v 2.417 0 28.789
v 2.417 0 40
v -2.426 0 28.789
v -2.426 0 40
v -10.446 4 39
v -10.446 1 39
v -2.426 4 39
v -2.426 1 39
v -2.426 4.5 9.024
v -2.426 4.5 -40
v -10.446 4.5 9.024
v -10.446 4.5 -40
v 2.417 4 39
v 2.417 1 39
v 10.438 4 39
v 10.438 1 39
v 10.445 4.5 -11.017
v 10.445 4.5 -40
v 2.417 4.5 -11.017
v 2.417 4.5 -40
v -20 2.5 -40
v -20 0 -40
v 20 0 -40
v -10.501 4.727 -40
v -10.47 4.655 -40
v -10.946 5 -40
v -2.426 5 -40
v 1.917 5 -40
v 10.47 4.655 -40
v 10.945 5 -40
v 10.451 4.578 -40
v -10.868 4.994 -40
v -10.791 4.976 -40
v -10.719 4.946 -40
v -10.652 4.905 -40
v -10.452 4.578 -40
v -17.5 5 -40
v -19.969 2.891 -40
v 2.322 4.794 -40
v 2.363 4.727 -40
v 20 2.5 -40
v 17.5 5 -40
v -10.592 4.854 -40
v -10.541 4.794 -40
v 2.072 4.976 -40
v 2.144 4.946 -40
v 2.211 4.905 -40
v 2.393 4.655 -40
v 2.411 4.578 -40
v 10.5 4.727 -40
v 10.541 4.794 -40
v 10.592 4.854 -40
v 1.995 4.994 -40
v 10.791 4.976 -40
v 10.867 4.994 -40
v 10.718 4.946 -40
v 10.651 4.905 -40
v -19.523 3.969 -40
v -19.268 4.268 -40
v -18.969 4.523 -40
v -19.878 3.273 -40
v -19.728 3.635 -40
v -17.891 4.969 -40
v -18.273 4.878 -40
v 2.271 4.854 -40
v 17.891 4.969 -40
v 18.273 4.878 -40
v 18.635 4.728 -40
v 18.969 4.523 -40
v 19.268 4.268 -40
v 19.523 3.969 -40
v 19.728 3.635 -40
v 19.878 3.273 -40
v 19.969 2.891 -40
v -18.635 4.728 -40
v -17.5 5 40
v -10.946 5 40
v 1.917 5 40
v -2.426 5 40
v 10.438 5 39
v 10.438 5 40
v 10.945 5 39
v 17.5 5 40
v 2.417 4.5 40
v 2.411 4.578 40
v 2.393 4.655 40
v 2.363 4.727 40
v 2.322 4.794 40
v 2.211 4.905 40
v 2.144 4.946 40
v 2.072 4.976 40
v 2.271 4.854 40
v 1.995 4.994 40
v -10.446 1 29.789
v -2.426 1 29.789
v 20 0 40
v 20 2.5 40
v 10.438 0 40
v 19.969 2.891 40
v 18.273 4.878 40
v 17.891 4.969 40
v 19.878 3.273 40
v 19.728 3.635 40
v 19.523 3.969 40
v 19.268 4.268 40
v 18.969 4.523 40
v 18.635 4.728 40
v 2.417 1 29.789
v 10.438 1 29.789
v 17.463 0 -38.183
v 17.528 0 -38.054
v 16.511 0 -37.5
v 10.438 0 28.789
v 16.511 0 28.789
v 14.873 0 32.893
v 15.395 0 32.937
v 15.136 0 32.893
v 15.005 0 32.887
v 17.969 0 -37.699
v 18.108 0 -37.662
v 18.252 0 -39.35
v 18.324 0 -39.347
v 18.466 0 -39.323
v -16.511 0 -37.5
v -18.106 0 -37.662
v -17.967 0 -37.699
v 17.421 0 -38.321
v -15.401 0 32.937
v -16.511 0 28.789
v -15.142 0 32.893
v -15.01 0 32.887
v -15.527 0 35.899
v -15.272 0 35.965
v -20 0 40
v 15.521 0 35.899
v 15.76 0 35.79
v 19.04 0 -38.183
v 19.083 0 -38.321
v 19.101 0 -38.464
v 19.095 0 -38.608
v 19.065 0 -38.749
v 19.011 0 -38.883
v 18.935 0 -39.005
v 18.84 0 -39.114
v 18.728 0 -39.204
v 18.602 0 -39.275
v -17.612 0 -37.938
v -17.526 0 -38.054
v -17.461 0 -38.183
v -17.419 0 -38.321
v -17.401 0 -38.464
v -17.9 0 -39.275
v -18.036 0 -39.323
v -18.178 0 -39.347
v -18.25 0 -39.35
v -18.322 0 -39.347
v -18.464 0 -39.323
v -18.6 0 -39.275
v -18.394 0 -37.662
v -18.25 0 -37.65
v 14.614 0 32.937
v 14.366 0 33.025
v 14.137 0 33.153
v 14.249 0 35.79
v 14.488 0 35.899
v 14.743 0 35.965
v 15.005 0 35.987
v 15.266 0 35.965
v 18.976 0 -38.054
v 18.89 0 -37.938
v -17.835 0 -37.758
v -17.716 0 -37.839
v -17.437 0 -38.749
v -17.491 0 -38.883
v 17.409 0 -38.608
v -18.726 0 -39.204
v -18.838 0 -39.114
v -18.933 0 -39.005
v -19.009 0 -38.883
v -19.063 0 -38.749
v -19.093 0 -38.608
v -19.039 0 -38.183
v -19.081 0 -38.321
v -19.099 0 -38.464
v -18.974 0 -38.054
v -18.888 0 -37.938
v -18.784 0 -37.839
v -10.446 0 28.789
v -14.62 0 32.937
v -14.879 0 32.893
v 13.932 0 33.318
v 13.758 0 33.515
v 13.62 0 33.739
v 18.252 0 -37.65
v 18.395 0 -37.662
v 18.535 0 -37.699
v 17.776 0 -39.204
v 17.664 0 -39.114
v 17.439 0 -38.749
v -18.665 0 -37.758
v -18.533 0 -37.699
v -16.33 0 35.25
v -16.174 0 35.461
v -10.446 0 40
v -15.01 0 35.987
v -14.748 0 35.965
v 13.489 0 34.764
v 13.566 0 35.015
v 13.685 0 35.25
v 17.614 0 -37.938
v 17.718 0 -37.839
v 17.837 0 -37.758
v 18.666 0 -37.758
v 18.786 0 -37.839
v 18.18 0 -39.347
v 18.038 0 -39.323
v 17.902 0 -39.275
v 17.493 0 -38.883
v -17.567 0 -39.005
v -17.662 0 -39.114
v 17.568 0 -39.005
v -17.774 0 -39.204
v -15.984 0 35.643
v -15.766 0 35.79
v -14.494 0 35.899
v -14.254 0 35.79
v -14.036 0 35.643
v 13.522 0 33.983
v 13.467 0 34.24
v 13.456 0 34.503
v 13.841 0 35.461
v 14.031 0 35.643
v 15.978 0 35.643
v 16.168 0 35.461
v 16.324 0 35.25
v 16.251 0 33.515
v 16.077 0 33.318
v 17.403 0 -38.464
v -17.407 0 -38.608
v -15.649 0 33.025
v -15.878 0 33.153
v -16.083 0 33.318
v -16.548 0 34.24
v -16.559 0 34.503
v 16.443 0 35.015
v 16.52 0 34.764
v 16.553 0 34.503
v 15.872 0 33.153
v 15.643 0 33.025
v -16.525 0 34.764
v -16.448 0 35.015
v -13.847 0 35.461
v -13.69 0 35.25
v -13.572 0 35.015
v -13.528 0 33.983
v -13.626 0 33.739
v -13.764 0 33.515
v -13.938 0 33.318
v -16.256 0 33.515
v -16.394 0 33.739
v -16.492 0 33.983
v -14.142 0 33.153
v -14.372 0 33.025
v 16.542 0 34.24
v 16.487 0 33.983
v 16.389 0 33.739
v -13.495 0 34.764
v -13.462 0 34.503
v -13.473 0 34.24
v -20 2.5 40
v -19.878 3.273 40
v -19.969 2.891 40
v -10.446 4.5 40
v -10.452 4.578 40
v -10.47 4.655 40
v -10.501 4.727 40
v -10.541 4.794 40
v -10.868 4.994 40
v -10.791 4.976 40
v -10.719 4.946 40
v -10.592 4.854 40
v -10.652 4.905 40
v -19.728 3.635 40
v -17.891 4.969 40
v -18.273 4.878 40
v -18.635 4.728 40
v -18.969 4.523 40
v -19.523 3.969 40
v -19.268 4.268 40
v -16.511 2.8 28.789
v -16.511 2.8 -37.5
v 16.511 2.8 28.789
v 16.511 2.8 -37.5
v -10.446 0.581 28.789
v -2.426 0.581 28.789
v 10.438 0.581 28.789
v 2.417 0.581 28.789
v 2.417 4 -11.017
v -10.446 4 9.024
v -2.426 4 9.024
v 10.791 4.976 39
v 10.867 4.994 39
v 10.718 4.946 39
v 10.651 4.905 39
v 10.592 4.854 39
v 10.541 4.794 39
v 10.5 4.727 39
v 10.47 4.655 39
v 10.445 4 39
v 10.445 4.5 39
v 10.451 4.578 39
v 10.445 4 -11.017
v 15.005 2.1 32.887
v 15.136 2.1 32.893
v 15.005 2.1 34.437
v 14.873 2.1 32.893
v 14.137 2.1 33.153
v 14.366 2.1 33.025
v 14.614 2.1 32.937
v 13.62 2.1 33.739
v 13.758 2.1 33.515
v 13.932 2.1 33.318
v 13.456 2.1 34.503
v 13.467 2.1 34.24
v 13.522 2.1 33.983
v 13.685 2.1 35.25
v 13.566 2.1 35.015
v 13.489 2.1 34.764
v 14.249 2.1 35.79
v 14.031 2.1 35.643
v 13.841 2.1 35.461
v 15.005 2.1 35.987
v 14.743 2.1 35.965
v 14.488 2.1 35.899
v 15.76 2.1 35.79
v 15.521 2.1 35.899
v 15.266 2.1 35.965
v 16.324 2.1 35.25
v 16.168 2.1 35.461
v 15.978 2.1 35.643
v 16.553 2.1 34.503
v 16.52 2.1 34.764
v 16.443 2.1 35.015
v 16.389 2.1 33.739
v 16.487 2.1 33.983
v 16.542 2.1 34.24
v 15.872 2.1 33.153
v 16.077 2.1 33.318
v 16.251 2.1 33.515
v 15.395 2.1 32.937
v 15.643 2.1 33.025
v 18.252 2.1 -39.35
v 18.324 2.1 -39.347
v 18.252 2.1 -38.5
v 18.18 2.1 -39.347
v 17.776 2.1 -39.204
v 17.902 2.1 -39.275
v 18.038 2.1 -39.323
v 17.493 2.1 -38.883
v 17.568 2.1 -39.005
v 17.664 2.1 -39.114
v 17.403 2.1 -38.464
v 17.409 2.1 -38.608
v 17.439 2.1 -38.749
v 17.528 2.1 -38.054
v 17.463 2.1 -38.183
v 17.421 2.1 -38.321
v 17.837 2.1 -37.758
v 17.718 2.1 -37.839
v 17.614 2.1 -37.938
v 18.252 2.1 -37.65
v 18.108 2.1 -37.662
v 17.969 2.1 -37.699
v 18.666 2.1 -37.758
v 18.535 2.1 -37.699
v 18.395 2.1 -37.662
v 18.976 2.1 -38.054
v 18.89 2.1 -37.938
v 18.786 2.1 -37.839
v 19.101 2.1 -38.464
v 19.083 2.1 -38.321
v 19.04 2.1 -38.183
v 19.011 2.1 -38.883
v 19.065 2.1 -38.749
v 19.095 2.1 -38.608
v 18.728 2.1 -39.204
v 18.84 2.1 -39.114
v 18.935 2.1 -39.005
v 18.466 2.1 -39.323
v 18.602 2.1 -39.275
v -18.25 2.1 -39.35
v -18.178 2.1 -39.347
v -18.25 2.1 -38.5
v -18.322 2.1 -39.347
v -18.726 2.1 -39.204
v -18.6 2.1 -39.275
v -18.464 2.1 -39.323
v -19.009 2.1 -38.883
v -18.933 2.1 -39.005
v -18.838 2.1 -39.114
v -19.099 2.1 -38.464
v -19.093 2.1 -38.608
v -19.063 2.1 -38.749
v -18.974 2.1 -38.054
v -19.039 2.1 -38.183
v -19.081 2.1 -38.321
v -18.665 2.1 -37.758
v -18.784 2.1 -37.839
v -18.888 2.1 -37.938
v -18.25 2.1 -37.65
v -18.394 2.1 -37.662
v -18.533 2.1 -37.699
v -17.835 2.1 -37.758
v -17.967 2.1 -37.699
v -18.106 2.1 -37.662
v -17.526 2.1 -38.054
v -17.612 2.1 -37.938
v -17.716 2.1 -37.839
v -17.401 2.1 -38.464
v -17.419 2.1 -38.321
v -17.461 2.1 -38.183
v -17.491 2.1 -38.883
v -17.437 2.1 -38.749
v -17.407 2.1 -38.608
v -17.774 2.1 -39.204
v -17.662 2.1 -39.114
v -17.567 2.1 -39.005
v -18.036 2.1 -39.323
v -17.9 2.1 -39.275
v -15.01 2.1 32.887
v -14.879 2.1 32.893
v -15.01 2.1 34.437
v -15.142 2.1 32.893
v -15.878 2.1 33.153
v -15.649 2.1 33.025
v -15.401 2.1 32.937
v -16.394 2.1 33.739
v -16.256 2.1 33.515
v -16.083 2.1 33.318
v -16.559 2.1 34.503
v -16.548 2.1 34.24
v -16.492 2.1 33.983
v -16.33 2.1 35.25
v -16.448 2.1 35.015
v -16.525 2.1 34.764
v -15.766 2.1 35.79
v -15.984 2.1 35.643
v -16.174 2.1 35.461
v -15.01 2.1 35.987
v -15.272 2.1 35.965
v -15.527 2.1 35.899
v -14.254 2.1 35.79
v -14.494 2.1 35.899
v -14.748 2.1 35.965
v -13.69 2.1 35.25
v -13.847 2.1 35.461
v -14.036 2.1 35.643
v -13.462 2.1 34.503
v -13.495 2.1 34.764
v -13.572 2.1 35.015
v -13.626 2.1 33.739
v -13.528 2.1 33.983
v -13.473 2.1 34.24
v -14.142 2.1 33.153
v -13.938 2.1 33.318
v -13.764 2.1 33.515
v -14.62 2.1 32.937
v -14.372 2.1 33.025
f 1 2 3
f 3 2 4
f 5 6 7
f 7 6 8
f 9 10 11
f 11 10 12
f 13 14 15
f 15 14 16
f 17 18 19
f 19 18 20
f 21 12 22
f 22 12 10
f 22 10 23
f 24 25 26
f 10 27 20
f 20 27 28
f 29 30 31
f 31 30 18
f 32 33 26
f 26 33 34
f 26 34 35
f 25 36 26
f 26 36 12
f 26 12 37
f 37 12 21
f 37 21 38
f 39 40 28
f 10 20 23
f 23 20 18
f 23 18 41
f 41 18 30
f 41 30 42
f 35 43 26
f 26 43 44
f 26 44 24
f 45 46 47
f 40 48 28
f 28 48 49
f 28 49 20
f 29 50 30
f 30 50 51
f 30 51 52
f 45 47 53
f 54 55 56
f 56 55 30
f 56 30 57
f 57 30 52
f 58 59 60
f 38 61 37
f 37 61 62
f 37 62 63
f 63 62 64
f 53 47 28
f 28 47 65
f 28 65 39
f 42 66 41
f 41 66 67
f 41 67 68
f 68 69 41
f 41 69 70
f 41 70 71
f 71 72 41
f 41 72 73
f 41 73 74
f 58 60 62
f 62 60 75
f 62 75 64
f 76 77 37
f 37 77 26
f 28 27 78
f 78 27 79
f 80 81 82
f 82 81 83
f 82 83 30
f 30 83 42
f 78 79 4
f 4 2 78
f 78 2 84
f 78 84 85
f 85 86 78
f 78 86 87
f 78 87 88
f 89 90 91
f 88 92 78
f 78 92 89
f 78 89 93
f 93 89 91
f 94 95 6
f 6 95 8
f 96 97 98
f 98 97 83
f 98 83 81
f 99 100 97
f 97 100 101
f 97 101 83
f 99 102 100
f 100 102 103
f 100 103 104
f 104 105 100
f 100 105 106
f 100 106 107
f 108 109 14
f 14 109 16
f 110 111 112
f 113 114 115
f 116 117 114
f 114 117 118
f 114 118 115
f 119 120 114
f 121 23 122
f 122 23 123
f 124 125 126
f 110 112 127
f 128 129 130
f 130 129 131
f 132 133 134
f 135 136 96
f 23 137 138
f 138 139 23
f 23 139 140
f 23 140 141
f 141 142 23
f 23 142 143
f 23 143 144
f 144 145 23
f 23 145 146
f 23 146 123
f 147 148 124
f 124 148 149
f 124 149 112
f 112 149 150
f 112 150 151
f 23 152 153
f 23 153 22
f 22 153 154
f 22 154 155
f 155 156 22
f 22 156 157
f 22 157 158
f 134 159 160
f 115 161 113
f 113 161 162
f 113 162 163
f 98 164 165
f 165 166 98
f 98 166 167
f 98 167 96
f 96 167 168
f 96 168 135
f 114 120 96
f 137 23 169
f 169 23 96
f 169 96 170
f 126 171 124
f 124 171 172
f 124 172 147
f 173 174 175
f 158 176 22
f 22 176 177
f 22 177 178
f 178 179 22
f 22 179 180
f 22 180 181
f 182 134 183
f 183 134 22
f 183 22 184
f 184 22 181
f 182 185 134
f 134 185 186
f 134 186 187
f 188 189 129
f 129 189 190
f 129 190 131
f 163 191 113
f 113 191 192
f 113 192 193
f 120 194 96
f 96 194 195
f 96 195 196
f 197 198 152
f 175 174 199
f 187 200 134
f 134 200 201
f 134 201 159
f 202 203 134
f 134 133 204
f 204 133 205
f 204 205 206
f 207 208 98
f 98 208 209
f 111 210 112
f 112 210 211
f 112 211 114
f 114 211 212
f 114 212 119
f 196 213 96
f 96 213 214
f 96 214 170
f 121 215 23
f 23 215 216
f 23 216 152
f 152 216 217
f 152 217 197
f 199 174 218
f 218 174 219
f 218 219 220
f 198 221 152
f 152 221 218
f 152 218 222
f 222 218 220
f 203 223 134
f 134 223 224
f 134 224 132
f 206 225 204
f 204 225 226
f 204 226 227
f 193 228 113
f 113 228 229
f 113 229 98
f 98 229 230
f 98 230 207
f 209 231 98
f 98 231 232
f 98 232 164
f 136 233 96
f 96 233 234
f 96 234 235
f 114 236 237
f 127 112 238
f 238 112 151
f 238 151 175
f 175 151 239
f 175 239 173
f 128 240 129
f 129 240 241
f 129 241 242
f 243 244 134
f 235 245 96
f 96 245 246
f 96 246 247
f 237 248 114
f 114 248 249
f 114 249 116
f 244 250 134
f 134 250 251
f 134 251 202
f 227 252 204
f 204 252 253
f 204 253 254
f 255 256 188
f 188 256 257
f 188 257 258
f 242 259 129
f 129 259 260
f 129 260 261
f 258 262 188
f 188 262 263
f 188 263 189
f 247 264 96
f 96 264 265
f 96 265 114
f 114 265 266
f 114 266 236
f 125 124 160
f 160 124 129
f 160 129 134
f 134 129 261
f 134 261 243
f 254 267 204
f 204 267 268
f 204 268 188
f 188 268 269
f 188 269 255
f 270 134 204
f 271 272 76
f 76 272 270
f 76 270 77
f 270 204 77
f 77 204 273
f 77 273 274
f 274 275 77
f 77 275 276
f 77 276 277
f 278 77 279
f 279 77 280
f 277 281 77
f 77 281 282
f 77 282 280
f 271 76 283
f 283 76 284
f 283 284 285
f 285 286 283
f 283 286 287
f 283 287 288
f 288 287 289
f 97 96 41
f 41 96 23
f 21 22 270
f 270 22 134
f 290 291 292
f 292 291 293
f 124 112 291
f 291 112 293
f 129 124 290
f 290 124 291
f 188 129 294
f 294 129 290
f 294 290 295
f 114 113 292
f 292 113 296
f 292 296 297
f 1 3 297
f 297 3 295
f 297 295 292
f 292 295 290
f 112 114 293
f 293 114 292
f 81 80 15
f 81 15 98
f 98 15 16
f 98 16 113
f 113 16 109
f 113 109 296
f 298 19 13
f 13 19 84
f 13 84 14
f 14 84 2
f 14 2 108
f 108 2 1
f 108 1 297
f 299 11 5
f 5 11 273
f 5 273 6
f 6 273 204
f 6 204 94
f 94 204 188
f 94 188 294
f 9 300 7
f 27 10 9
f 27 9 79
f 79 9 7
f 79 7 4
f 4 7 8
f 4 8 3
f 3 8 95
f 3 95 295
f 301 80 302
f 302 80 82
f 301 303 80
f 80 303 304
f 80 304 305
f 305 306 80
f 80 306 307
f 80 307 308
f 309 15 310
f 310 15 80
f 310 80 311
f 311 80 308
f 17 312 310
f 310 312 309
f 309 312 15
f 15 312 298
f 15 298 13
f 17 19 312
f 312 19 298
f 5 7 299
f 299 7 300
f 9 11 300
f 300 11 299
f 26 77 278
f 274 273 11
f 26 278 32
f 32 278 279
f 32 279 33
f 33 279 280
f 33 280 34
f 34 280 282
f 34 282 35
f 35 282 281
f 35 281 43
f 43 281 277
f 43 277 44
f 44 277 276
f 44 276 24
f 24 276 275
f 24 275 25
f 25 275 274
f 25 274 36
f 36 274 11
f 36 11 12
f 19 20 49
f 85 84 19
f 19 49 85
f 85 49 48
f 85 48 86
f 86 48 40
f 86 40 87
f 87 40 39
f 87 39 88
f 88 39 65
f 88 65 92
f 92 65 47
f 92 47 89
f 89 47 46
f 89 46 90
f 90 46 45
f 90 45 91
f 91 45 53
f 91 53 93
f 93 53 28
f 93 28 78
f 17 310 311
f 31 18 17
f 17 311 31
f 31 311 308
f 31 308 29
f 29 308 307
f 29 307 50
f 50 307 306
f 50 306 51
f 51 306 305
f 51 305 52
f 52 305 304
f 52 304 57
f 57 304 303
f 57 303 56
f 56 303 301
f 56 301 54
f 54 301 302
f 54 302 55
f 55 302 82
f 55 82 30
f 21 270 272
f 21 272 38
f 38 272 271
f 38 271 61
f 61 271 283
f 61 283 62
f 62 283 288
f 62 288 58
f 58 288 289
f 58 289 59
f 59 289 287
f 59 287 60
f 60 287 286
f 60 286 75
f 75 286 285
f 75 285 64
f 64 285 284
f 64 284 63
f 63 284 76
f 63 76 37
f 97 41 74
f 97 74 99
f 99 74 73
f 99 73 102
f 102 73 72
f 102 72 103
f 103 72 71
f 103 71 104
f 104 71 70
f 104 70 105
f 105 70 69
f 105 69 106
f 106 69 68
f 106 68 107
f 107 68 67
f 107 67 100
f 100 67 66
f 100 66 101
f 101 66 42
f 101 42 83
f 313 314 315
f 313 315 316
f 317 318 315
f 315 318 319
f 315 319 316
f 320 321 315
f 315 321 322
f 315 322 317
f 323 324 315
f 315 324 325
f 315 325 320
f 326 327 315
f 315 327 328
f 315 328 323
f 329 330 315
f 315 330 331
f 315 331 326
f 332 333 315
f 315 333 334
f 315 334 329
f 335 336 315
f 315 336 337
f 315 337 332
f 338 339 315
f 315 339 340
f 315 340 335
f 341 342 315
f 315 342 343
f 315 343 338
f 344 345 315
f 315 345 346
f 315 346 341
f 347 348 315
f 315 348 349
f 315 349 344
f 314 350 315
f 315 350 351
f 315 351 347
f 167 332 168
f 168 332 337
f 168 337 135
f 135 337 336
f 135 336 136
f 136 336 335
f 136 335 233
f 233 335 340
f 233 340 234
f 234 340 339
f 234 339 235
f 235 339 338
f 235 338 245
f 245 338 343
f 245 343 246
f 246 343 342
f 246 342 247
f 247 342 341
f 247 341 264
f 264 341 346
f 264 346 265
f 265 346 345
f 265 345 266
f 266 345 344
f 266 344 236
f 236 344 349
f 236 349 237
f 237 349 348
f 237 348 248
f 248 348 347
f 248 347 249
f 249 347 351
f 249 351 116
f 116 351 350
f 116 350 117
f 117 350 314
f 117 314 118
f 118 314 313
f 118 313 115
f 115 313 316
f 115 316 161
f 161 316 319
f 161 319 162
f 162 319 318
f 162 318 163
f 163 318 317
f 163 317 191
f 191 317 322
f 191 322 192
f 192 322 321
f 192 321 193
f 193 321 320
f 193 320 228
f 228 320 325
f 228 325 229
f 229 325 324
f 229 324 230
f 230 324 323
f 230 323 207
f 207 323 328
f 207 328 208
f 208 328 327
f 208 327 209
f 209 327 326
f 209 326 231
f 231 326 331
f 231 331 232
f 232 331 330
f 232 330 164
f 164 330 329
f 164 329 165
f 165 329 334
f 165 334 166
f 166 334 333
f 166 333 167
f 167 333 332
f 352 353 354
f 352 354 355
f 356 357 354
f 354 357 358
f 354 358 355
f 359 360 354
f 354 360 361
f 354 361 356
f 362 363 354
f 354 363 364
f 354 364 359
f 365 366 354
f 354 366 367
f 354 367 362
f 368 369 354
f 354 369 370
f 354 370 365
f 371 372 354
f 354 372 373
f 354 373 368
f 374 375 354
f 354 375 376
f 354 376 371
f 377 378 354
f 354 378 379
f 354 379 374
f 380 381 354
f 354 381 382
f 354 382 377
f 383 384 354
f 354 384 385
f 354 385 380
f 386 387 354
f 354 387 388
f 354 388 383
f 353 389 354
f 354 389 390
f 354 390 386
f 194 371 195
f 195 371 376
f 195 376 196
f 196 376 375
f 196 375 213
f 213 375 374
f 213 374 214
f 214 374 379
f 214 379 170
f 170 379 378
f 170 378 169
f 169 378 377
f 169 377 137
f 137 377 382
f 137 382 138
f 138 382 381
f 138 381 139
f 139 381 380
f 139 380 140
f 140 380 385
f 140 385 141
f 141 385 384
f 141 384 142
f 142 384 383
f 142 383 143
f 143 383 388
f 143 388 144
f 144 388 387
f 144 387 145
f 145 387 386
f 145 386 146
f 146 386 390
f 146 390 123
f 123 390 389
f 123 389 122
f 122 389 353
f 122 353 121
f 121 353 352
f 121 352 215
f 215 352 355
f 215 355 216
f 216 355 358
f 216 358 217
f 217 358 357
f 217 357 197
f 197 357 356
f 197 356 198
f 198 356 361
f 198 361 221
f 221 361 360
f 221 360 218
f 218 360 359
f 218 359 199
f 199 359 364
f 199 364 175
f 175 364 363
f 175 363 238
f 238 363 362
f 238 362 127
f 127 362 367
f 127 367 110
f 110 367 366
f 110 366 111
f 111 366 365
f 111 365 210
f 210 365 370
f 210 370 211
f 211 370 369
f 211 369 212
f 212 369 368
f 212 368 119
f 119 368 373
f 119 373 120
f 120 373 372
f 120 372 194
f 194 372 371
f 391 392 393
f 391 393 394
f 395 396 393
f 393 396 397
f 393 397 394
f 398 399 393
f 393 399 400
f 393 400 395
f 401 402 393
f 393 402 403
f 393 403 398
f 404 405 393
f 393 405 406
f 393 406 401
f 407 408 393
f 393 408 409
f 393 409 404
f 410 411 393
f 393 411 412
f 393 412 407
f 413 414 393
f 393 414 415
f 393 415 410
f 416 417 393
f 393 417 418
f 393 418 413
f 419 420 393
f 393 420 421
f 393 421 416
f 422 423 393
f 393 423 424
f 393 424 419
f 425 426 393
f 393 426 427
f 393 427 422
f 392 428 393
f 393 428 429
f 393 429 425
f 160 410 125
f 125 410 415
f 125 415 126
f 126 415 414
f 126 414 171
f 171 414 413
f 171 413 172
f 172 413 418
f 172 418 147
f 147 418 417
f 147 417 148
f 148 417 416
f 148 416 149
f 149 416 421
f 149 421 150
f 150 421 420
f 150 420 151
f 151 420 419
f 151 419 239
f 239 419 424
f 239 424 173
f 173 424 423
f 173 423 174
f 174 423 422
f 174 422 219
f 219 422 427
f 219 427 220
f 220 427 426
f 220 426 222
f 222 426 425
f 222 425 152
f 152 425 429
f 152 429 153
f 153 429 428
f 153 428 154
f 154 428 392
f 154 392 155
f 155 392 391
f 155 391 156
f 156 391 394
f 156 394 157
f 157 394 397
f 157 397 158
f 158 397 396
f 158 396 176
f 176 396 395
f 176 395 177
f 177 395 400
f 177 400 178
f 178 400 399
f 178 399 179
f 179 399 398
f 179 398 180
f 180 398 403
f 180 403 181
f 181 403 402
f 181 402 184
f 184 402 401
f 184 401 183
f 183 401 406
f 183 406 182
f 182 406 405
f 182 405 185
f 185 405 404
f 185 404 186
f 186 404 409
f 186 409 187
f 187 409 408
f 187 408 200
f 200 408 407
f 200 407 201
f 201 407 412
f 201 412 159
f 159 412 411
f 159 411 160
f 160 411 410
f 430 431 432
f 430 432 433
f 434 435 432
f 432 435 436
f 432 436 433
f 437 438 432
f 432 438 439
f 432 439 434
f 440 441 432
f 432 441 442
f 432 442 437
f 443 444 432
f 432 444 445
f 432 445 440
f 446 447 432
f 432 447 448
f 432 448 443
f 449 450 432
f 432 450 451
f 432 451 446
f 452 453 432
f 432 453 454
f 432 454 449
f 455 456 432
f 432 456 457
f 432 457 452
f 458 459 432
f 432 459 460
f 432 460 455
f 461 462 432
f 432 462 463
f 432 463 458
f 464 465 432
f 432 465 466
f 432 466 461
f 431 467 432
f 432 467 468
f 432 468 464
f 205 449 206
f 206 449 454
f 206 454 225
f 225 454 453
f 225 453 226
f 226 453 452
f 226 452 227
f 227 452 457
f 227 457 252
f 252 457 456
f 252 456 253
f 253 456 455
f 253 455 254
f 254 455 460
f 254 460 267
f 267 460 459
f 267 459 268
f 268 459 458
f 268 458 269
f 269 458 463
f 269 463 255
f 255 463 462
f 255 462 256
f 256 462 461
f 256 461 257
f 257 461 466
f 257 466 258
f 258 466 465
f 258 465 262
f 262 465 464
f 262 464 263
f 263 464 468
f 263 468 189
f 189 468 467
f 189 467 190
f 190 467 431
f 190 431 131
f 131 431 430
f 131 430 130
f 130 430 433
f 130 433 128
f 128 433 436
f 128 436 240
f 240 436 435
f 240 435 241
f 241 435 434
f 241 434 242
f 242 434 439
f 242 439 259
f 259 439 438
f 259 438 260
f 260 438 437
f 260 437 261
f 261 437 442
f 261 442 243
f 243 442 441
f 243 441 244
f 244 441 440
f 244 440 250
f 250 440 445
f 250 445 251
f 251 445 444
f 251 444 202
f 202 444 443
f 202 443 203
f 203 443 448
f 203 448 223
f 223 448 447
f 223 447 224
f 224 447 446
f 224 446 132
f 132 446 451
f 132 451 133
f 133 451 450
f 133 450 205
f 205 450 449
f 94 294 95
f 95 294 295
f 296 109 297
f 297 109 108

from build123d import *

# Parameters (mm, degrees)
SKETCH2_W           = 40
SKETCH2_H           = 80
BOSS_EXTRUDE1_DEPTH = 5
CUT_EXTRUDE1_DEPTH  = 2.8000000000000003
CUT_EXTRUDE2_DEPTH  = 1
CUT_EXTRUDE3_DEPTH  = 1
CUT_EXTRUDE4_DEPTH  = 0.5
CUT_EXTRUDE5_DEPTH  = 0.5
FILLET1_R           = 0.5
FILLET2_R           = 2.5
F_3DSKETCH6_R       = 1.5500000000000003
F_3DSKETCH6_R_2     = 0.8500000000000008
CUT_EXTRUDE6_DEPTH  = 2.1
FILLET3_START       = -10.446006344
FILLET3_DEPTH       = 8.020486493
FILLET3_START_2     = 2.417038032
FILLET3_2_DEPTH     = 8.020486493


with BuildPart() as part:
    # Sketch2 → Boss-Extrude1 (new body)
    with BuildSketch(Plane(origin=(0, 0, 0), x_dir=(1, 0, 0), z_dir=(0, 1, 0))):
        Rectangle(SKETCH2_W, SKETCH2_H)
    extrude(amount=BOSS_EXTRUDE1_DEPTH)

    # 3DSketch1 → Cut-Extrude1 (cut)
    with BuildSketch(Plane(origin=(-16.51128006150057, 0, -37.5), x_dir=(0.4458957716594368, 0, 0.8950848902848463), z_dir=(0, 1, 0))):
        Polygon((0, 0), (14.72461992821574, 29.557994604621218), (74.05892188684597, 0), (59.334301958630235, -29.557994604621218), align=None)
    extrude(amount=CUT_EXTRUDE1_DEPTH, mode=Mode.SUBTRACT)

    # 3DSketch2 → Cut-Extrude2 (cut)
    with BuildSketch(Plane(origin=(2.4170380320342884, 0, 29.789021971701544), x_dir=(-0.7832232950206466, 0, 0.621740516724623), z_dir=(0, 1, 0))):
        Polygon((0, 0), (-6.28183185870911, 4.986661416535171), (0.06674689686894317, 12.984137273242512), (6.348578755578054, 7.997475856707341), align=None)
        Polygon((3.7928041411073767, -3.0108144401721697), (10.074635999816486, -7.997475856707341), (16.42321475539454, 0), (10.14138289668543, 4.986661416535171), align=None)
    extrude(amount=CUT_EXTRUDE2_DEPTH, mode=Mode.SUBTRACT)

    # 3DSketch3 → Cut-Extrude3 (cut)
    with BuildSketch(Plane(origin=(2.4170380320342884, 1, 40), x_dir=(-0.9548954301559858, 0.29694227968953, 0), z_dir=(0, 0, -1))):
        Polygon((0, 0), (-7.658725899785049, 2.3816215434478725), (-6.470956781026929, 6.2012032640718155), (1.1877691187581199, 3.8195817206239426), align=None)
        Polygon((12.282862292108083, -3.8195817206239426), (4.6241363923230345, -1.43796017717607), (5.811905511081154, 2.381621543447873), (13.470631410866202, 0), align=None)
    extrude(amount=CUT_EXTRUDE3_DEPTH, mode=Mode.SUBTRACT)

    # 3DSketch4 → Cut-Extrude4 (cut)
    with BuildSketch(Plane(origin=(-10.446006343517528, 5, 39), x_dir=(0.25565796932804924, 0, -0.9667672950193641), z_dir=(0, 1, 0))):
        Polygon((0, 0), (76.37461630652976, 20.19697957691589), (78.42511759635093, 12.443035545347499), (2.0505012898211623, -7.753944031568391), align=None)
        Polygon((3.288539804430162, -12.435570616666274), (79.66315611095993, 7.761408960249617), (81.71563147305025, 0), (5.341015166520477, -20.19697957691589), align=None)
    extrude(amount=-CUT_EXTRUDE4_DEPTH, mode=Mode.SUBTRACT)

    # 3DSketch5 → Cut-Extrude5 (cut)
    with BuildSketch(Plane(origin=(10.445246061241729, 4.500000000000001, -11.016513850599985), x_dir=(-0.3854175434043051, 0, 0.9227422810493678), z_dir=(0, 1, 0))):
        Polygon((0, 0), (3.0942122165558494, -7.407966989609723), (49.24656429719578, 11.869274908335926), (46.152352080639936, 19.27724189794565), align=None)
        Polygon((23.45245782033335, -4.152597437612319), (26.543694021369404, -11.553439439280611), (54.20420726112153, 0), (51.11297106008547, 7.400842001668292), align=None)
    extrude(amount=-CUT_EXTRUDE5_DEPTH, mode=Mode.SUBTRACT)

    # Fillet1
    fillet1_edges = [part.edges().sort_by_distance(p)[0] for p in [
        (-10.446006343517528, 5, 7.11e-15),
        (2.4170380320342884, 5, 0),
        (10.445246061241729, 5, -0.5000000000000071),
    ]]
    fillet(fillet1_edges, radius=FILLET1_R)

    # Fillet2
    fillet2_edges = [part.edges().sort_by_distance(p)[0] for p in [
        (-20, 5, 0),
        (20, 5, 0),
    ]]
    fillet(fillet2_edges, radius=FILLET2_R)

    # 3DSketch6 → Cut-Extrude6 (cut)
    with BuildSketch(Plane(origin=(15.004520440934186, 0, 34.437112055137284), x_dir=(-0.41484987007197305, 0, -0.909889875370238), z_dir=(0, -1, 0))):
        with Locations(Location((0, 0, 0), (0, 0, 24.509862444))):
            Circle(F_3DSKETCH6_R)
        with Locations(Location((12.4516160827032, -27.310119209349818, 0), (0, 0, 24.509862444))):
            Circle(F_3DSKETCH6_R)
        with Locations(Location((80.16037328194126, 0, 0), (0, 0, 24.509862444))):
            Circle(F_3DSKETCH6_R_2)
        with Locations(Location((65.01761603264471, 33.2125968942302, 0), (0, 0, 24.509862444))):
            Circle(F_3DSKETCH6_R_2)
    extrude(amount=-CUT_EXTRUDE6_DEPTH, mode=Mode.SUBTRACT)

    # Fillet3: read off the stored shape, not the designer's step
    # Fillet3 outline → Fillet3 (cut)
    with BuildSketch(Plane.YZ.offset(FILLET3_START)):
        with BuildLine():
            Line((0, 28.789021972), (0.580987425, 28.789021972))
            ThreePointArc((0.580987425, 28.789021972), (0.776930768, 29.294705016), (1, 29.789021972))
            Line((1, 29.789021972), (0, 29.789021972))
            Line((0, 29.789021972), (0, 28.789021972))
        make_face()
    extrude(amount=FILLET3_DEPTH, mode=Mode.SUBTRACT)

    # Fillet3 2 outline → Fillet3 2 (cut)
    with BuildSketch(Plane.YZ.offset(FILLET3_START_2)):
        with BuildLine():
            Line((0, 28.789021972), (0.580987425, 28.789021972))
            ThreePointArc((0.580987425, 28.789021972), (0.776930768, 29.294705016), (1, 29.789021972))
            Line((1, 29.789021972), (0, 29.789021972))
            Line((0, 29.789021972), (0, 28.789021972))
        make_face()
    extrude(amount=FILLET3_2_DEPTH, mode=Mode.SUBTRACT)


solid = part.part
